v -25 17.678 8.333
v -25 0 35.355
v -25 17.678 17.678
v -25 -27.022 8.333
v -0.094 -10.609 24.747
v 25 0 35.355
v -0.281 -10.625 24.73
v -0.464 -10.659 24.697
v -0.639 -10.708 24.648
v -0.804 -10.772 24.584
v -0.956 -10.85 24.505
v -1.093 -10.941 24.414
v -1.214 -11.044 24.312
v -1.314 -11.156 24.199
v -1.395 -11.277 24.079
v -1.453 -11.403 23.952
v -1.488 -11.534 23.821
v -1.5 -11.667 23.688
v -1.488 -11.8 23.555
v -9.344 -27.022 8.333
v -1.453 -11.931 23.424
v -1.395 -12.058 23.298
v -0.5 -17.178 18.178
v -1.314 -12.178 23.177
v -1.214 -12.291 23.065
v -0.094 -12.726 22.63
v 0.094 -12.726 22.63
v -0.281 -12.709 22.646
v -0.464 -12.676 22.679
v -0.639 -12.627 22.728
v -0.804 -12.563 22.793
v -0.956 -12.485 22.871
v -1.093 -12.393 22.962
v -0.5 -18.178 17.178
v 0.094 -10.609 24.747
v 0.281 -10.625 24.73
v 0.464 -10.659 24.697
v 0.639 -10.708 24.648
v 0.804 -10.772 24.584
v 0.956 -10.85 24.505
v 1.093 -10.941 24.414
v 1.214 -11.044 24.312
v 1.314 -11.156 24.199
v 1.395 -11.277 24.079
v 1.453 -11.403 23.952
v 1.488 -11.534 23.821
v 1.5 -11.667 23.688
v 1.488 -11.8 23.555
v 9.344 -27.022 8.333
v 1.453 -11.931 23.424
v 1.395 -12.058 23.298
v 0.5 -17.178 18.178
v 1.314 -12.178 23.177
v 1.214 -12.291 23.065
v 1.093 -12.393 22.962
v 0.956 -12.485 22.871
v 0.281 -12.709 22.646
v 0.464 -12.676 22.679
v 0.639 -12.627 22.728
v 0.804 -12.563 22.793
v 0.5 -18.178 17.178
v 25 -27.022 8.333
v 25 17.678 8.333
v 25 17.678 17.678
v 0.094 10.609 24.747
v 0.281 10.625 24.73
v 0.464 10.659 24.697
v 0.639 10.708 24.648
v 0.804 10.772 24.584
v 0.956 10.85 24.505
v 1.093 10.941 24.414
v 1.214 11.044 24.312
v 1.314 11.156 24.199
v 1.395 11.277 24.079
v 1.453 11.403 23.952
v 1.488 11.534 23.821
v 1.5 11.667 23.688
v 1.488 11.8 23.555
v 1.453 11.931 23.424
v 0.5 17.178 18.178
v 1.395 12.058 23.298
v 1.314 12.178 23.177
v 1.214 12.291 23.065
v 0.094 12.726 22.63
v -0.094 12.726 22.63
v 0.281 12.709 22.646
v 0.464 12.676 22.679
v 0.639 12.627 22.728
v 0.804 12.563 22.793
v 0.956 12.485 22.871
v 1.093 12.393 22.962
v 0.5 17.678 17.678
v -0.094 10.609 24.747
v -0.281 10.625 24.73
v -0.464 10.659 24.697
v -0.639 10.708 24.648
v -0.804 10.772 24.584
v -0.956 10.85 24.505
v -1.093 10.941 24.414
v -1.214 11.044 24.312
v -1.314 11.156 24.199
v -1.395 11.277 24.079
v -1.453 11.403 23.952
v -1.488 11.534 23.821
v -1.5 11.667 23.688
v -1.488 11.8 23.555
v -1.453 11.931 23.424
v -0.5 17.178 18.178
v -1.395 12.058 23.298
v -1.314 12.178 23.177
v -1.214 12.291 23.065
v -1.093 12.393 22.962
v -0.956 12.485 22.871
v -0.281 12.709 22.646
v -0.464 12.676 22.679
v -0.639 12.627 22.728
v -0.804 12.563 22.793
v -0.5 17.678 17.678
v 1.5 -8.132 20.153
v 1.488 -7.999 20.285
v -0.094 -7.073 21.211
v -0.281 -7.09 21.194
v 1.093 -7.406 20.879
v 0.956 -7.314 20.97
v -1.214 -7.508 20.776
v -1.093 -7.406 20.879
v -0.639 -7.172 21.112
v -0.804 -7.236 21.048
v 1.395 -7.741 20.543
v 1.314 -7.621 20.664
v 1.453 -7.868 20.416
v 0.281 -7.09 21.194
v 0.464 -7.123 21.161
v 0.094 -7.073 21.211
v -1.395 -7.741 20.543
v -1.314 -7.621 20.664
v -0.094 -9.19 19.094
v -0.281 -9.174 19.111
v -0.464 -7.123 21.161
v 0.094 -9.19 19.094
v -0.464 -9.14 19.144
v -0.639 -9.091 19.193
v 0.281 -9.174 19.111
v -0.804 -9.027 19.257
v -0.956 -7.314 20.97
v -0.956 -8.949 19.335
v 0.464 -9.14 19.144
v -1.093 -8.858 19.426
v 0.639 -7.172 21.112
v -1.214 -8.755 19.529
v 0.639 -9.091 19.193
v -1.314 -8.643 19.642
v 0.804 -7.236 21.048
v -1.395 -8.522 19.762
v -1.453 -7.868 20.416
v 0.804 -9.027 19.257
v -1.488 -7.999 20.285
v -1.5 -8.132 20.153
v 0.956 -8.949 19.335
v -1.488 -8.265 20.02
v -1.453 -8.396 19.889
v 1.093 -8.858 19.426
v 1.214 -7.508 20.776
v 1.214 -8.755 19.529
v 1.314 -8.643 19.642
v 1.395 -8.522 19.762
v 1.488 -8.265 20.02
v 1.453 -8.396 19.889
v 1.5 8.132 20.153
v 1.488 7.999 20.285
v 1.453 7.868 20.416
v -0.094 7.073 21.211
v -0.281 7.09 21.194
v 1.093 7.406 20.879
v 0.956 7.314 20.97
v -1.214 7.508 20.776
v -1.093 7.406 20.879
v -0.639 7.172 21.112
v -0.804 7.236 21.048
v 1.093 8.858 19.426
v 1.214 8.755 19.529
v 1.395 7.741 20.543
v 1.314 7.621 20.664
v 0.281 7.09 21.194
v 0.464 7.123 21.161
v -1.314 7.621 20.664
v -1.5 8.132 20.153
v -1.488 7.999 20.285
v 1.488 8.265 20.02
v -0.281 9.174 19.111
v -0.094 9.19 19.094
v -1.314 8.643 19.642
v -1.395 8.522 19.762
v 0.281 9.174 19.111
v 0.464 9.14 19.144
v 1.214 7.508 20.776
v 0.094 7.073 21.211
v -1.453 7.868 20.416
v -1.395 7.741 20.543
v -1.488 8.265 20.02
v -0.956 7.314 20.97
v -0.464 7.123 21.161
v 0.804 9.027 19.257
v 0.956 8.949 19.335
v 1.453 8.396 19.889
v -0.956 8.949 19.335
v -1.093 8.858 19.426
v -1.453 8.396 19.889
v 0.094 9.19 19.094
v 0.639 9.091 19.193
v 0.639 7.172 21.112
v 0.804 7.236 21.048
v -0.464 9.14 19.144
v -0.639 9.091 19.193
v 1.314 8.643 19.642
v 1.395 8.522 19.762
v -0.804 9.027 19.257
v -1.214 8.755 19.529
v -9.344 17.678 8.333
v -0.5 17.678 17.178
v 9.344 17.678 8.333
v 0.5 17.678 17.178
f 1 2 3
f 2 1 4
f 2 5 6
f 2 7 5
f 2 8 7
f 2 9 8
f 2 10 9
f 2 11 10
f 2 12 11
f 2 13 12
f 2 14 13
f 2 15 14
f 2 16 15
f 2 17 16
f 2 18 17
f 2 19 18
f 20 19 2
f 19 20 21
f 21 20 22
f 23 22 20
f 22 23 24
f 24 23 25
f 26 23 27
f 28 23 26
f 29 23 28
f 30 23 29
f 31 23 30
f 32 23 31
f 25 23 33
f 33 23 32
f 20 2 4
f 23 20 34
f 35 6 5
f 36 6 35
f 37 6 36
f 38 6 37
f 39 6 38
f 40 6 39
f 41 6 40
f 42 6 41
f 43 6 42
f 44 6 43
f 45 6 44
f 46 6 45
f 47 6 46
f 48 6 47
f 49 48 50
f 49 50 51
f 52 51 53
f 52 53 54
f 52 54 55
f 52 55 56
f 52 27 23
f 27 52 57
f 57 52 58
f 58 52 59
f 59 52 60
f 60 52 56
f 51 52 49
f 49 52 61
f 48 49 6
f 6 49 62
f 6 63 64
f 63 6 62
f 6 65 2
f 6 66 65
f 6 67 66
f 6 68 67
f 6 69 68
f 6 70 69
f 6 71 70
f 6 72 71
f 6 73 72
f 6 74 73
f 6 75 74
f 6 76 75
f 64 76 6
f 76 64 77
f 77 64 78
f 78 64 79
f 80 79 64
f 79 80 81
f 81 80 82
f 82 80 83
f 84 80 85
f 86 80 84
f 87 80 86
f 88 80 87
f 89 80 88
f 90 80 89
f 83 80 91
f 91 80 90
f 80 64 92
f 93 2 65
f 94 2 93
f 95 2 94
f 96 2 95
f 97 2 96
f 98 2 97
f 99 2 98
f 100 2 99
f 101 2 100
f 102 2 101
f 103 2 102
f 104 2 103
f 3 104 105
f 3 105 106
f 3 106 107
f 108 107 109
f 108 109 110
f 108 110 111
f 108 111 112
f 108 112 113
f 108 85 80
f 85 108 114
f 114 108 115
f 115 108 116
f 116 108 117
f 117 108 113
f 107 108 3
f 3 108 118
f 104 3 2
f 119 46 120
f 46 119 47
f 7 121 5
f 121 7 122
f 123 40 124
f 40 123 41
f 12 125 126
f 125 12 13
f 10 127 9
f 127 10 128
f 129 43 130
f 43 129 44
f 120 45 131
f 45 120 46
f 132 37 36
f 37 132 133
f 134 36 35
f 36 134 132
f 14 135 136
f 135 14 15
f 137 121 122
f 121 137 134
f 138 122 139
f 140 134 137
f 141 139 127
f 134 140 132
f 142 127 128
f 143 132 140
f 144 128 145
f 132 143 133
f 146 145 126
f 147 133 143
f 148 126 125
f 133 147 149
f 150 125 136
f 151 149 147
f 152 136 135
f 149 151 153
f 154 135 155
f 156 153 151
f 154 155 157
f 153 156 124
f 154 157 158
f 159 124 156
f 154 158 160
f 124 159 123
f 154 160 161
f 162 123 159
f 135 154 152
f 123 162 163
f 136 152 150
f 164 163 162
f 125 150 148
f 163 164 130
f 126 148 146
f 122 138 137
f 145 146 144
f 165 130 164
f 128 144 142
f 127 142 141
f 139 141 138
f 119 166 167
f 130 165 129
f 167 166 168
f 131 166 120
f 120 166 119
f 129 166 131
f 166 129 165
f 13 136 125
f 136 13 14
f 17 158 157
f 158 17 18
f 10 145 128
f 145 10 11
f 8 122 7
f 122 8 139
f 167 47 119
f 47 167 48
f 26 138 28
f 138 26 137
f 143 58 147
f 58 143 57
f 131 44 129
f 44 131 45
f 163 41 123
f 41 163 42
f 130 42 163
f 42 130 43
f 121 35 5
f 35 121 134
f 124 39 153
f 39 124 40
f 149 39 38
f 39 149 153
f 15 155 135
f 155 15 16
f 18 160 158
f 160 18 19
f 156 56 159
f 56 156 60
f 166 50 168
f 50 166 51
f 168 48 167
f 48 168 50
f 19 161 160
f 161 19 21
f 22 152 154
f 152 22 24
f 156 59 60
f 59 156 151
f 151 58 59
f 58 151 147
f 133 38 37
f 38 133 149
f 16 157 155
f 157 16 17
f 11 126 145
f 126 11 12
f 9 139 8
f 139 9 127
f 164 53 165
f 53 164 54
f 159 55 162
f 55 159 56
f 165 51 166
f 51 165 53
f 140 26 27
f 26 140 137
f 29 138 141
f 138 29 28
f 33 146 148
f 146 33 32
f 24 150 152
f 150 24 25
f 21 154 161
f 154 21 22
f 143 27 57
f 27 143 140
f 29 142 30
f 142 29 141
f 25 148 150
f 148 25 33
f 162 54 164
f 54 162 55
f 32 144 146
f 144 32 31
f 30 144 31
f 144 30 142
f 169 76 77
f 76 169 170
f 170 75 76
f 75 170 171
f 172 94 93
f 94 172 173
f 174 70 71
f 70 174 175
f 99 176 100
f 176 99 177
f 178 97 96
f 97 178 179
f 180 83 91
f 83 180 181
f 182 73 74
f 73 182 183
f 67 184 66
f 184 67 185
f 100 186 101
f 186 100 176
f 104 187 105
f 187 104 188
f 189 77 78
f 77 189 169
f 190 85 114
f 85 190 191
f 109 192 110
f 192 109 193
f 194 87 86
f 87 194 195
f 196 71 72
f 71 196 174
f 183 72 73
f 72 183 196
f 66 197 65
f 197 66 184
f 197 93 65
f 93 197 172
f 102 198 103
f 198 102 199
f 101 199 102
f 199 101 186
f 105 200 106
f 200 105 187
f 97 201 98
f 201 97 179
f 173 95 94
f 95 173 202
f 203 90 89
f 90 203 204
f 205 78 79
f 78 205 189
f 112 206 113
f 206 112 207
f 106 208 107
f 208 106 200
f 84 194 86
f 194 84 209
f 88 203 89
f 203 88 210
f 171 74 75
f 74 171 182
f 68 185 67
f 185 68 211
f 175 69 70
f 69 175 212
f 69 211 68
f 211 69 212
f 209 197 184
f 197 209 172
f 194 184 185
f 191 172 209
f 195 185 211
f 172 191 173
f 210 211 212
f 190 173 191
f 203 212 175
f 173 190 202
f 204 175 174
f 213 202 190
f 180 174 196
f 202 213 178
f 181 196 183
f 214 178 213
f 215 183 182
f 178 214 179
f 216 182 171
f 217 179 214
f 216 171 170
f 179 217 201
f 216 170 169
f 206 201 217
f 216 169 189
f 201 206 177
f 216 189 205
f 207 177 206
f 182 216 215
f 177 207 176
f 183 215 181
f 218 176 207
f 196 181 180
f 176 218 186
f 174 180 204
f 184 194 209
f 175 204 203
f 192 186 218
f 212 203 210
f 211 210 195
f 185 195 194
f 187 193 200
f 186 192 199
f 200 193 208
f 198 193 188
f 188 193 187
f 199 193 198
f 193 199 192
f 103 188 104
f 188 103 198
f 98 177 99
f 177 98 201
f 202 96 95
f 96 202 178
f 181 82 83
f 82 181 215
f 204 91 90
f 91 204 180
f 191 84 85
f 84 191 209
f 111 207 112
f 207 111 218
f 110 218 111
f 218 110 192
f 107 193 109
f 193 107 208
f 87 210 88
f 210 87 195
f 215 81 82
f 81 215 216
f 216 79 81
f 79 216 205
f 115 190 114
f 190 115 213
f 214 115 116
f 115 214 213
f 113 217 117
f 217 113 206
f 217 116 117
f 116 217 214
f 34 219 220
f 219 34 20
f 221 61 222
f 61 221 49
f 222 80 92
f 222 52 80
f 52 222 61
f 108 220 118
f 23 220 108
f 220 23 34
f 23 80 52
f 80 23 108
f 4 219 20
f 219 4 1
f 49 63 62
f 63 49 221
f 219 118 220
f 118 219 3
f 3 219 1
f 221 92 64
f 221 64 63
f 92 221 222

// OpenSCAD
wide = 50;
// cutout_dim = wide/2;
hole_height = 8.5;
m2_insert_d = 3;
m2_insert_blind_hole_depth = 5;
cut_angle = 45;

$fn=50;

razor();
difference(){
    body();
    cutout();

    //section off bottom
    translate([0, 0, -2*wide + wide/6])
    cube(4*wide, center=true);

    // translate([0, (2.354)*wide, 0])
    translate([0, (2*wide + wide * sqrt(2) / 4), 0])
    cube(4*wide, center=true);
}

module razor(){
    // color("silver", 0.5)
    rotate([cut_angle, 0, 0])
    translate([0, hole_height, wide/2])
    %cube([40, 20, 1], center=true);
}

module body(){
    rotate([45, 0, 0])
    difference(){
        cube(wide, center=true);
        translate([0, hole_height, wide / 2])
        m2_insert_hole();
        translate([0, wide / 2, hole_height])
        rotate([90, 0, 0])
        m2_insert_hole();

    }

    module m2_insert_hole(){
        cylinder(d=m2_insert_d, h=m2_insert_blind_hole_depth*2, center=true);
    }
}

module cutout(){
    rotate([0, 45, 0])
    union(){
        cube([wide / 2, 3 * wide, wide / 2], center=true);
        translate([-wide / 4, 0, wide / 4])
        rotate([0, 45, 0])
        cube([1, 3 * wide, 1], center=true);
    }
}
